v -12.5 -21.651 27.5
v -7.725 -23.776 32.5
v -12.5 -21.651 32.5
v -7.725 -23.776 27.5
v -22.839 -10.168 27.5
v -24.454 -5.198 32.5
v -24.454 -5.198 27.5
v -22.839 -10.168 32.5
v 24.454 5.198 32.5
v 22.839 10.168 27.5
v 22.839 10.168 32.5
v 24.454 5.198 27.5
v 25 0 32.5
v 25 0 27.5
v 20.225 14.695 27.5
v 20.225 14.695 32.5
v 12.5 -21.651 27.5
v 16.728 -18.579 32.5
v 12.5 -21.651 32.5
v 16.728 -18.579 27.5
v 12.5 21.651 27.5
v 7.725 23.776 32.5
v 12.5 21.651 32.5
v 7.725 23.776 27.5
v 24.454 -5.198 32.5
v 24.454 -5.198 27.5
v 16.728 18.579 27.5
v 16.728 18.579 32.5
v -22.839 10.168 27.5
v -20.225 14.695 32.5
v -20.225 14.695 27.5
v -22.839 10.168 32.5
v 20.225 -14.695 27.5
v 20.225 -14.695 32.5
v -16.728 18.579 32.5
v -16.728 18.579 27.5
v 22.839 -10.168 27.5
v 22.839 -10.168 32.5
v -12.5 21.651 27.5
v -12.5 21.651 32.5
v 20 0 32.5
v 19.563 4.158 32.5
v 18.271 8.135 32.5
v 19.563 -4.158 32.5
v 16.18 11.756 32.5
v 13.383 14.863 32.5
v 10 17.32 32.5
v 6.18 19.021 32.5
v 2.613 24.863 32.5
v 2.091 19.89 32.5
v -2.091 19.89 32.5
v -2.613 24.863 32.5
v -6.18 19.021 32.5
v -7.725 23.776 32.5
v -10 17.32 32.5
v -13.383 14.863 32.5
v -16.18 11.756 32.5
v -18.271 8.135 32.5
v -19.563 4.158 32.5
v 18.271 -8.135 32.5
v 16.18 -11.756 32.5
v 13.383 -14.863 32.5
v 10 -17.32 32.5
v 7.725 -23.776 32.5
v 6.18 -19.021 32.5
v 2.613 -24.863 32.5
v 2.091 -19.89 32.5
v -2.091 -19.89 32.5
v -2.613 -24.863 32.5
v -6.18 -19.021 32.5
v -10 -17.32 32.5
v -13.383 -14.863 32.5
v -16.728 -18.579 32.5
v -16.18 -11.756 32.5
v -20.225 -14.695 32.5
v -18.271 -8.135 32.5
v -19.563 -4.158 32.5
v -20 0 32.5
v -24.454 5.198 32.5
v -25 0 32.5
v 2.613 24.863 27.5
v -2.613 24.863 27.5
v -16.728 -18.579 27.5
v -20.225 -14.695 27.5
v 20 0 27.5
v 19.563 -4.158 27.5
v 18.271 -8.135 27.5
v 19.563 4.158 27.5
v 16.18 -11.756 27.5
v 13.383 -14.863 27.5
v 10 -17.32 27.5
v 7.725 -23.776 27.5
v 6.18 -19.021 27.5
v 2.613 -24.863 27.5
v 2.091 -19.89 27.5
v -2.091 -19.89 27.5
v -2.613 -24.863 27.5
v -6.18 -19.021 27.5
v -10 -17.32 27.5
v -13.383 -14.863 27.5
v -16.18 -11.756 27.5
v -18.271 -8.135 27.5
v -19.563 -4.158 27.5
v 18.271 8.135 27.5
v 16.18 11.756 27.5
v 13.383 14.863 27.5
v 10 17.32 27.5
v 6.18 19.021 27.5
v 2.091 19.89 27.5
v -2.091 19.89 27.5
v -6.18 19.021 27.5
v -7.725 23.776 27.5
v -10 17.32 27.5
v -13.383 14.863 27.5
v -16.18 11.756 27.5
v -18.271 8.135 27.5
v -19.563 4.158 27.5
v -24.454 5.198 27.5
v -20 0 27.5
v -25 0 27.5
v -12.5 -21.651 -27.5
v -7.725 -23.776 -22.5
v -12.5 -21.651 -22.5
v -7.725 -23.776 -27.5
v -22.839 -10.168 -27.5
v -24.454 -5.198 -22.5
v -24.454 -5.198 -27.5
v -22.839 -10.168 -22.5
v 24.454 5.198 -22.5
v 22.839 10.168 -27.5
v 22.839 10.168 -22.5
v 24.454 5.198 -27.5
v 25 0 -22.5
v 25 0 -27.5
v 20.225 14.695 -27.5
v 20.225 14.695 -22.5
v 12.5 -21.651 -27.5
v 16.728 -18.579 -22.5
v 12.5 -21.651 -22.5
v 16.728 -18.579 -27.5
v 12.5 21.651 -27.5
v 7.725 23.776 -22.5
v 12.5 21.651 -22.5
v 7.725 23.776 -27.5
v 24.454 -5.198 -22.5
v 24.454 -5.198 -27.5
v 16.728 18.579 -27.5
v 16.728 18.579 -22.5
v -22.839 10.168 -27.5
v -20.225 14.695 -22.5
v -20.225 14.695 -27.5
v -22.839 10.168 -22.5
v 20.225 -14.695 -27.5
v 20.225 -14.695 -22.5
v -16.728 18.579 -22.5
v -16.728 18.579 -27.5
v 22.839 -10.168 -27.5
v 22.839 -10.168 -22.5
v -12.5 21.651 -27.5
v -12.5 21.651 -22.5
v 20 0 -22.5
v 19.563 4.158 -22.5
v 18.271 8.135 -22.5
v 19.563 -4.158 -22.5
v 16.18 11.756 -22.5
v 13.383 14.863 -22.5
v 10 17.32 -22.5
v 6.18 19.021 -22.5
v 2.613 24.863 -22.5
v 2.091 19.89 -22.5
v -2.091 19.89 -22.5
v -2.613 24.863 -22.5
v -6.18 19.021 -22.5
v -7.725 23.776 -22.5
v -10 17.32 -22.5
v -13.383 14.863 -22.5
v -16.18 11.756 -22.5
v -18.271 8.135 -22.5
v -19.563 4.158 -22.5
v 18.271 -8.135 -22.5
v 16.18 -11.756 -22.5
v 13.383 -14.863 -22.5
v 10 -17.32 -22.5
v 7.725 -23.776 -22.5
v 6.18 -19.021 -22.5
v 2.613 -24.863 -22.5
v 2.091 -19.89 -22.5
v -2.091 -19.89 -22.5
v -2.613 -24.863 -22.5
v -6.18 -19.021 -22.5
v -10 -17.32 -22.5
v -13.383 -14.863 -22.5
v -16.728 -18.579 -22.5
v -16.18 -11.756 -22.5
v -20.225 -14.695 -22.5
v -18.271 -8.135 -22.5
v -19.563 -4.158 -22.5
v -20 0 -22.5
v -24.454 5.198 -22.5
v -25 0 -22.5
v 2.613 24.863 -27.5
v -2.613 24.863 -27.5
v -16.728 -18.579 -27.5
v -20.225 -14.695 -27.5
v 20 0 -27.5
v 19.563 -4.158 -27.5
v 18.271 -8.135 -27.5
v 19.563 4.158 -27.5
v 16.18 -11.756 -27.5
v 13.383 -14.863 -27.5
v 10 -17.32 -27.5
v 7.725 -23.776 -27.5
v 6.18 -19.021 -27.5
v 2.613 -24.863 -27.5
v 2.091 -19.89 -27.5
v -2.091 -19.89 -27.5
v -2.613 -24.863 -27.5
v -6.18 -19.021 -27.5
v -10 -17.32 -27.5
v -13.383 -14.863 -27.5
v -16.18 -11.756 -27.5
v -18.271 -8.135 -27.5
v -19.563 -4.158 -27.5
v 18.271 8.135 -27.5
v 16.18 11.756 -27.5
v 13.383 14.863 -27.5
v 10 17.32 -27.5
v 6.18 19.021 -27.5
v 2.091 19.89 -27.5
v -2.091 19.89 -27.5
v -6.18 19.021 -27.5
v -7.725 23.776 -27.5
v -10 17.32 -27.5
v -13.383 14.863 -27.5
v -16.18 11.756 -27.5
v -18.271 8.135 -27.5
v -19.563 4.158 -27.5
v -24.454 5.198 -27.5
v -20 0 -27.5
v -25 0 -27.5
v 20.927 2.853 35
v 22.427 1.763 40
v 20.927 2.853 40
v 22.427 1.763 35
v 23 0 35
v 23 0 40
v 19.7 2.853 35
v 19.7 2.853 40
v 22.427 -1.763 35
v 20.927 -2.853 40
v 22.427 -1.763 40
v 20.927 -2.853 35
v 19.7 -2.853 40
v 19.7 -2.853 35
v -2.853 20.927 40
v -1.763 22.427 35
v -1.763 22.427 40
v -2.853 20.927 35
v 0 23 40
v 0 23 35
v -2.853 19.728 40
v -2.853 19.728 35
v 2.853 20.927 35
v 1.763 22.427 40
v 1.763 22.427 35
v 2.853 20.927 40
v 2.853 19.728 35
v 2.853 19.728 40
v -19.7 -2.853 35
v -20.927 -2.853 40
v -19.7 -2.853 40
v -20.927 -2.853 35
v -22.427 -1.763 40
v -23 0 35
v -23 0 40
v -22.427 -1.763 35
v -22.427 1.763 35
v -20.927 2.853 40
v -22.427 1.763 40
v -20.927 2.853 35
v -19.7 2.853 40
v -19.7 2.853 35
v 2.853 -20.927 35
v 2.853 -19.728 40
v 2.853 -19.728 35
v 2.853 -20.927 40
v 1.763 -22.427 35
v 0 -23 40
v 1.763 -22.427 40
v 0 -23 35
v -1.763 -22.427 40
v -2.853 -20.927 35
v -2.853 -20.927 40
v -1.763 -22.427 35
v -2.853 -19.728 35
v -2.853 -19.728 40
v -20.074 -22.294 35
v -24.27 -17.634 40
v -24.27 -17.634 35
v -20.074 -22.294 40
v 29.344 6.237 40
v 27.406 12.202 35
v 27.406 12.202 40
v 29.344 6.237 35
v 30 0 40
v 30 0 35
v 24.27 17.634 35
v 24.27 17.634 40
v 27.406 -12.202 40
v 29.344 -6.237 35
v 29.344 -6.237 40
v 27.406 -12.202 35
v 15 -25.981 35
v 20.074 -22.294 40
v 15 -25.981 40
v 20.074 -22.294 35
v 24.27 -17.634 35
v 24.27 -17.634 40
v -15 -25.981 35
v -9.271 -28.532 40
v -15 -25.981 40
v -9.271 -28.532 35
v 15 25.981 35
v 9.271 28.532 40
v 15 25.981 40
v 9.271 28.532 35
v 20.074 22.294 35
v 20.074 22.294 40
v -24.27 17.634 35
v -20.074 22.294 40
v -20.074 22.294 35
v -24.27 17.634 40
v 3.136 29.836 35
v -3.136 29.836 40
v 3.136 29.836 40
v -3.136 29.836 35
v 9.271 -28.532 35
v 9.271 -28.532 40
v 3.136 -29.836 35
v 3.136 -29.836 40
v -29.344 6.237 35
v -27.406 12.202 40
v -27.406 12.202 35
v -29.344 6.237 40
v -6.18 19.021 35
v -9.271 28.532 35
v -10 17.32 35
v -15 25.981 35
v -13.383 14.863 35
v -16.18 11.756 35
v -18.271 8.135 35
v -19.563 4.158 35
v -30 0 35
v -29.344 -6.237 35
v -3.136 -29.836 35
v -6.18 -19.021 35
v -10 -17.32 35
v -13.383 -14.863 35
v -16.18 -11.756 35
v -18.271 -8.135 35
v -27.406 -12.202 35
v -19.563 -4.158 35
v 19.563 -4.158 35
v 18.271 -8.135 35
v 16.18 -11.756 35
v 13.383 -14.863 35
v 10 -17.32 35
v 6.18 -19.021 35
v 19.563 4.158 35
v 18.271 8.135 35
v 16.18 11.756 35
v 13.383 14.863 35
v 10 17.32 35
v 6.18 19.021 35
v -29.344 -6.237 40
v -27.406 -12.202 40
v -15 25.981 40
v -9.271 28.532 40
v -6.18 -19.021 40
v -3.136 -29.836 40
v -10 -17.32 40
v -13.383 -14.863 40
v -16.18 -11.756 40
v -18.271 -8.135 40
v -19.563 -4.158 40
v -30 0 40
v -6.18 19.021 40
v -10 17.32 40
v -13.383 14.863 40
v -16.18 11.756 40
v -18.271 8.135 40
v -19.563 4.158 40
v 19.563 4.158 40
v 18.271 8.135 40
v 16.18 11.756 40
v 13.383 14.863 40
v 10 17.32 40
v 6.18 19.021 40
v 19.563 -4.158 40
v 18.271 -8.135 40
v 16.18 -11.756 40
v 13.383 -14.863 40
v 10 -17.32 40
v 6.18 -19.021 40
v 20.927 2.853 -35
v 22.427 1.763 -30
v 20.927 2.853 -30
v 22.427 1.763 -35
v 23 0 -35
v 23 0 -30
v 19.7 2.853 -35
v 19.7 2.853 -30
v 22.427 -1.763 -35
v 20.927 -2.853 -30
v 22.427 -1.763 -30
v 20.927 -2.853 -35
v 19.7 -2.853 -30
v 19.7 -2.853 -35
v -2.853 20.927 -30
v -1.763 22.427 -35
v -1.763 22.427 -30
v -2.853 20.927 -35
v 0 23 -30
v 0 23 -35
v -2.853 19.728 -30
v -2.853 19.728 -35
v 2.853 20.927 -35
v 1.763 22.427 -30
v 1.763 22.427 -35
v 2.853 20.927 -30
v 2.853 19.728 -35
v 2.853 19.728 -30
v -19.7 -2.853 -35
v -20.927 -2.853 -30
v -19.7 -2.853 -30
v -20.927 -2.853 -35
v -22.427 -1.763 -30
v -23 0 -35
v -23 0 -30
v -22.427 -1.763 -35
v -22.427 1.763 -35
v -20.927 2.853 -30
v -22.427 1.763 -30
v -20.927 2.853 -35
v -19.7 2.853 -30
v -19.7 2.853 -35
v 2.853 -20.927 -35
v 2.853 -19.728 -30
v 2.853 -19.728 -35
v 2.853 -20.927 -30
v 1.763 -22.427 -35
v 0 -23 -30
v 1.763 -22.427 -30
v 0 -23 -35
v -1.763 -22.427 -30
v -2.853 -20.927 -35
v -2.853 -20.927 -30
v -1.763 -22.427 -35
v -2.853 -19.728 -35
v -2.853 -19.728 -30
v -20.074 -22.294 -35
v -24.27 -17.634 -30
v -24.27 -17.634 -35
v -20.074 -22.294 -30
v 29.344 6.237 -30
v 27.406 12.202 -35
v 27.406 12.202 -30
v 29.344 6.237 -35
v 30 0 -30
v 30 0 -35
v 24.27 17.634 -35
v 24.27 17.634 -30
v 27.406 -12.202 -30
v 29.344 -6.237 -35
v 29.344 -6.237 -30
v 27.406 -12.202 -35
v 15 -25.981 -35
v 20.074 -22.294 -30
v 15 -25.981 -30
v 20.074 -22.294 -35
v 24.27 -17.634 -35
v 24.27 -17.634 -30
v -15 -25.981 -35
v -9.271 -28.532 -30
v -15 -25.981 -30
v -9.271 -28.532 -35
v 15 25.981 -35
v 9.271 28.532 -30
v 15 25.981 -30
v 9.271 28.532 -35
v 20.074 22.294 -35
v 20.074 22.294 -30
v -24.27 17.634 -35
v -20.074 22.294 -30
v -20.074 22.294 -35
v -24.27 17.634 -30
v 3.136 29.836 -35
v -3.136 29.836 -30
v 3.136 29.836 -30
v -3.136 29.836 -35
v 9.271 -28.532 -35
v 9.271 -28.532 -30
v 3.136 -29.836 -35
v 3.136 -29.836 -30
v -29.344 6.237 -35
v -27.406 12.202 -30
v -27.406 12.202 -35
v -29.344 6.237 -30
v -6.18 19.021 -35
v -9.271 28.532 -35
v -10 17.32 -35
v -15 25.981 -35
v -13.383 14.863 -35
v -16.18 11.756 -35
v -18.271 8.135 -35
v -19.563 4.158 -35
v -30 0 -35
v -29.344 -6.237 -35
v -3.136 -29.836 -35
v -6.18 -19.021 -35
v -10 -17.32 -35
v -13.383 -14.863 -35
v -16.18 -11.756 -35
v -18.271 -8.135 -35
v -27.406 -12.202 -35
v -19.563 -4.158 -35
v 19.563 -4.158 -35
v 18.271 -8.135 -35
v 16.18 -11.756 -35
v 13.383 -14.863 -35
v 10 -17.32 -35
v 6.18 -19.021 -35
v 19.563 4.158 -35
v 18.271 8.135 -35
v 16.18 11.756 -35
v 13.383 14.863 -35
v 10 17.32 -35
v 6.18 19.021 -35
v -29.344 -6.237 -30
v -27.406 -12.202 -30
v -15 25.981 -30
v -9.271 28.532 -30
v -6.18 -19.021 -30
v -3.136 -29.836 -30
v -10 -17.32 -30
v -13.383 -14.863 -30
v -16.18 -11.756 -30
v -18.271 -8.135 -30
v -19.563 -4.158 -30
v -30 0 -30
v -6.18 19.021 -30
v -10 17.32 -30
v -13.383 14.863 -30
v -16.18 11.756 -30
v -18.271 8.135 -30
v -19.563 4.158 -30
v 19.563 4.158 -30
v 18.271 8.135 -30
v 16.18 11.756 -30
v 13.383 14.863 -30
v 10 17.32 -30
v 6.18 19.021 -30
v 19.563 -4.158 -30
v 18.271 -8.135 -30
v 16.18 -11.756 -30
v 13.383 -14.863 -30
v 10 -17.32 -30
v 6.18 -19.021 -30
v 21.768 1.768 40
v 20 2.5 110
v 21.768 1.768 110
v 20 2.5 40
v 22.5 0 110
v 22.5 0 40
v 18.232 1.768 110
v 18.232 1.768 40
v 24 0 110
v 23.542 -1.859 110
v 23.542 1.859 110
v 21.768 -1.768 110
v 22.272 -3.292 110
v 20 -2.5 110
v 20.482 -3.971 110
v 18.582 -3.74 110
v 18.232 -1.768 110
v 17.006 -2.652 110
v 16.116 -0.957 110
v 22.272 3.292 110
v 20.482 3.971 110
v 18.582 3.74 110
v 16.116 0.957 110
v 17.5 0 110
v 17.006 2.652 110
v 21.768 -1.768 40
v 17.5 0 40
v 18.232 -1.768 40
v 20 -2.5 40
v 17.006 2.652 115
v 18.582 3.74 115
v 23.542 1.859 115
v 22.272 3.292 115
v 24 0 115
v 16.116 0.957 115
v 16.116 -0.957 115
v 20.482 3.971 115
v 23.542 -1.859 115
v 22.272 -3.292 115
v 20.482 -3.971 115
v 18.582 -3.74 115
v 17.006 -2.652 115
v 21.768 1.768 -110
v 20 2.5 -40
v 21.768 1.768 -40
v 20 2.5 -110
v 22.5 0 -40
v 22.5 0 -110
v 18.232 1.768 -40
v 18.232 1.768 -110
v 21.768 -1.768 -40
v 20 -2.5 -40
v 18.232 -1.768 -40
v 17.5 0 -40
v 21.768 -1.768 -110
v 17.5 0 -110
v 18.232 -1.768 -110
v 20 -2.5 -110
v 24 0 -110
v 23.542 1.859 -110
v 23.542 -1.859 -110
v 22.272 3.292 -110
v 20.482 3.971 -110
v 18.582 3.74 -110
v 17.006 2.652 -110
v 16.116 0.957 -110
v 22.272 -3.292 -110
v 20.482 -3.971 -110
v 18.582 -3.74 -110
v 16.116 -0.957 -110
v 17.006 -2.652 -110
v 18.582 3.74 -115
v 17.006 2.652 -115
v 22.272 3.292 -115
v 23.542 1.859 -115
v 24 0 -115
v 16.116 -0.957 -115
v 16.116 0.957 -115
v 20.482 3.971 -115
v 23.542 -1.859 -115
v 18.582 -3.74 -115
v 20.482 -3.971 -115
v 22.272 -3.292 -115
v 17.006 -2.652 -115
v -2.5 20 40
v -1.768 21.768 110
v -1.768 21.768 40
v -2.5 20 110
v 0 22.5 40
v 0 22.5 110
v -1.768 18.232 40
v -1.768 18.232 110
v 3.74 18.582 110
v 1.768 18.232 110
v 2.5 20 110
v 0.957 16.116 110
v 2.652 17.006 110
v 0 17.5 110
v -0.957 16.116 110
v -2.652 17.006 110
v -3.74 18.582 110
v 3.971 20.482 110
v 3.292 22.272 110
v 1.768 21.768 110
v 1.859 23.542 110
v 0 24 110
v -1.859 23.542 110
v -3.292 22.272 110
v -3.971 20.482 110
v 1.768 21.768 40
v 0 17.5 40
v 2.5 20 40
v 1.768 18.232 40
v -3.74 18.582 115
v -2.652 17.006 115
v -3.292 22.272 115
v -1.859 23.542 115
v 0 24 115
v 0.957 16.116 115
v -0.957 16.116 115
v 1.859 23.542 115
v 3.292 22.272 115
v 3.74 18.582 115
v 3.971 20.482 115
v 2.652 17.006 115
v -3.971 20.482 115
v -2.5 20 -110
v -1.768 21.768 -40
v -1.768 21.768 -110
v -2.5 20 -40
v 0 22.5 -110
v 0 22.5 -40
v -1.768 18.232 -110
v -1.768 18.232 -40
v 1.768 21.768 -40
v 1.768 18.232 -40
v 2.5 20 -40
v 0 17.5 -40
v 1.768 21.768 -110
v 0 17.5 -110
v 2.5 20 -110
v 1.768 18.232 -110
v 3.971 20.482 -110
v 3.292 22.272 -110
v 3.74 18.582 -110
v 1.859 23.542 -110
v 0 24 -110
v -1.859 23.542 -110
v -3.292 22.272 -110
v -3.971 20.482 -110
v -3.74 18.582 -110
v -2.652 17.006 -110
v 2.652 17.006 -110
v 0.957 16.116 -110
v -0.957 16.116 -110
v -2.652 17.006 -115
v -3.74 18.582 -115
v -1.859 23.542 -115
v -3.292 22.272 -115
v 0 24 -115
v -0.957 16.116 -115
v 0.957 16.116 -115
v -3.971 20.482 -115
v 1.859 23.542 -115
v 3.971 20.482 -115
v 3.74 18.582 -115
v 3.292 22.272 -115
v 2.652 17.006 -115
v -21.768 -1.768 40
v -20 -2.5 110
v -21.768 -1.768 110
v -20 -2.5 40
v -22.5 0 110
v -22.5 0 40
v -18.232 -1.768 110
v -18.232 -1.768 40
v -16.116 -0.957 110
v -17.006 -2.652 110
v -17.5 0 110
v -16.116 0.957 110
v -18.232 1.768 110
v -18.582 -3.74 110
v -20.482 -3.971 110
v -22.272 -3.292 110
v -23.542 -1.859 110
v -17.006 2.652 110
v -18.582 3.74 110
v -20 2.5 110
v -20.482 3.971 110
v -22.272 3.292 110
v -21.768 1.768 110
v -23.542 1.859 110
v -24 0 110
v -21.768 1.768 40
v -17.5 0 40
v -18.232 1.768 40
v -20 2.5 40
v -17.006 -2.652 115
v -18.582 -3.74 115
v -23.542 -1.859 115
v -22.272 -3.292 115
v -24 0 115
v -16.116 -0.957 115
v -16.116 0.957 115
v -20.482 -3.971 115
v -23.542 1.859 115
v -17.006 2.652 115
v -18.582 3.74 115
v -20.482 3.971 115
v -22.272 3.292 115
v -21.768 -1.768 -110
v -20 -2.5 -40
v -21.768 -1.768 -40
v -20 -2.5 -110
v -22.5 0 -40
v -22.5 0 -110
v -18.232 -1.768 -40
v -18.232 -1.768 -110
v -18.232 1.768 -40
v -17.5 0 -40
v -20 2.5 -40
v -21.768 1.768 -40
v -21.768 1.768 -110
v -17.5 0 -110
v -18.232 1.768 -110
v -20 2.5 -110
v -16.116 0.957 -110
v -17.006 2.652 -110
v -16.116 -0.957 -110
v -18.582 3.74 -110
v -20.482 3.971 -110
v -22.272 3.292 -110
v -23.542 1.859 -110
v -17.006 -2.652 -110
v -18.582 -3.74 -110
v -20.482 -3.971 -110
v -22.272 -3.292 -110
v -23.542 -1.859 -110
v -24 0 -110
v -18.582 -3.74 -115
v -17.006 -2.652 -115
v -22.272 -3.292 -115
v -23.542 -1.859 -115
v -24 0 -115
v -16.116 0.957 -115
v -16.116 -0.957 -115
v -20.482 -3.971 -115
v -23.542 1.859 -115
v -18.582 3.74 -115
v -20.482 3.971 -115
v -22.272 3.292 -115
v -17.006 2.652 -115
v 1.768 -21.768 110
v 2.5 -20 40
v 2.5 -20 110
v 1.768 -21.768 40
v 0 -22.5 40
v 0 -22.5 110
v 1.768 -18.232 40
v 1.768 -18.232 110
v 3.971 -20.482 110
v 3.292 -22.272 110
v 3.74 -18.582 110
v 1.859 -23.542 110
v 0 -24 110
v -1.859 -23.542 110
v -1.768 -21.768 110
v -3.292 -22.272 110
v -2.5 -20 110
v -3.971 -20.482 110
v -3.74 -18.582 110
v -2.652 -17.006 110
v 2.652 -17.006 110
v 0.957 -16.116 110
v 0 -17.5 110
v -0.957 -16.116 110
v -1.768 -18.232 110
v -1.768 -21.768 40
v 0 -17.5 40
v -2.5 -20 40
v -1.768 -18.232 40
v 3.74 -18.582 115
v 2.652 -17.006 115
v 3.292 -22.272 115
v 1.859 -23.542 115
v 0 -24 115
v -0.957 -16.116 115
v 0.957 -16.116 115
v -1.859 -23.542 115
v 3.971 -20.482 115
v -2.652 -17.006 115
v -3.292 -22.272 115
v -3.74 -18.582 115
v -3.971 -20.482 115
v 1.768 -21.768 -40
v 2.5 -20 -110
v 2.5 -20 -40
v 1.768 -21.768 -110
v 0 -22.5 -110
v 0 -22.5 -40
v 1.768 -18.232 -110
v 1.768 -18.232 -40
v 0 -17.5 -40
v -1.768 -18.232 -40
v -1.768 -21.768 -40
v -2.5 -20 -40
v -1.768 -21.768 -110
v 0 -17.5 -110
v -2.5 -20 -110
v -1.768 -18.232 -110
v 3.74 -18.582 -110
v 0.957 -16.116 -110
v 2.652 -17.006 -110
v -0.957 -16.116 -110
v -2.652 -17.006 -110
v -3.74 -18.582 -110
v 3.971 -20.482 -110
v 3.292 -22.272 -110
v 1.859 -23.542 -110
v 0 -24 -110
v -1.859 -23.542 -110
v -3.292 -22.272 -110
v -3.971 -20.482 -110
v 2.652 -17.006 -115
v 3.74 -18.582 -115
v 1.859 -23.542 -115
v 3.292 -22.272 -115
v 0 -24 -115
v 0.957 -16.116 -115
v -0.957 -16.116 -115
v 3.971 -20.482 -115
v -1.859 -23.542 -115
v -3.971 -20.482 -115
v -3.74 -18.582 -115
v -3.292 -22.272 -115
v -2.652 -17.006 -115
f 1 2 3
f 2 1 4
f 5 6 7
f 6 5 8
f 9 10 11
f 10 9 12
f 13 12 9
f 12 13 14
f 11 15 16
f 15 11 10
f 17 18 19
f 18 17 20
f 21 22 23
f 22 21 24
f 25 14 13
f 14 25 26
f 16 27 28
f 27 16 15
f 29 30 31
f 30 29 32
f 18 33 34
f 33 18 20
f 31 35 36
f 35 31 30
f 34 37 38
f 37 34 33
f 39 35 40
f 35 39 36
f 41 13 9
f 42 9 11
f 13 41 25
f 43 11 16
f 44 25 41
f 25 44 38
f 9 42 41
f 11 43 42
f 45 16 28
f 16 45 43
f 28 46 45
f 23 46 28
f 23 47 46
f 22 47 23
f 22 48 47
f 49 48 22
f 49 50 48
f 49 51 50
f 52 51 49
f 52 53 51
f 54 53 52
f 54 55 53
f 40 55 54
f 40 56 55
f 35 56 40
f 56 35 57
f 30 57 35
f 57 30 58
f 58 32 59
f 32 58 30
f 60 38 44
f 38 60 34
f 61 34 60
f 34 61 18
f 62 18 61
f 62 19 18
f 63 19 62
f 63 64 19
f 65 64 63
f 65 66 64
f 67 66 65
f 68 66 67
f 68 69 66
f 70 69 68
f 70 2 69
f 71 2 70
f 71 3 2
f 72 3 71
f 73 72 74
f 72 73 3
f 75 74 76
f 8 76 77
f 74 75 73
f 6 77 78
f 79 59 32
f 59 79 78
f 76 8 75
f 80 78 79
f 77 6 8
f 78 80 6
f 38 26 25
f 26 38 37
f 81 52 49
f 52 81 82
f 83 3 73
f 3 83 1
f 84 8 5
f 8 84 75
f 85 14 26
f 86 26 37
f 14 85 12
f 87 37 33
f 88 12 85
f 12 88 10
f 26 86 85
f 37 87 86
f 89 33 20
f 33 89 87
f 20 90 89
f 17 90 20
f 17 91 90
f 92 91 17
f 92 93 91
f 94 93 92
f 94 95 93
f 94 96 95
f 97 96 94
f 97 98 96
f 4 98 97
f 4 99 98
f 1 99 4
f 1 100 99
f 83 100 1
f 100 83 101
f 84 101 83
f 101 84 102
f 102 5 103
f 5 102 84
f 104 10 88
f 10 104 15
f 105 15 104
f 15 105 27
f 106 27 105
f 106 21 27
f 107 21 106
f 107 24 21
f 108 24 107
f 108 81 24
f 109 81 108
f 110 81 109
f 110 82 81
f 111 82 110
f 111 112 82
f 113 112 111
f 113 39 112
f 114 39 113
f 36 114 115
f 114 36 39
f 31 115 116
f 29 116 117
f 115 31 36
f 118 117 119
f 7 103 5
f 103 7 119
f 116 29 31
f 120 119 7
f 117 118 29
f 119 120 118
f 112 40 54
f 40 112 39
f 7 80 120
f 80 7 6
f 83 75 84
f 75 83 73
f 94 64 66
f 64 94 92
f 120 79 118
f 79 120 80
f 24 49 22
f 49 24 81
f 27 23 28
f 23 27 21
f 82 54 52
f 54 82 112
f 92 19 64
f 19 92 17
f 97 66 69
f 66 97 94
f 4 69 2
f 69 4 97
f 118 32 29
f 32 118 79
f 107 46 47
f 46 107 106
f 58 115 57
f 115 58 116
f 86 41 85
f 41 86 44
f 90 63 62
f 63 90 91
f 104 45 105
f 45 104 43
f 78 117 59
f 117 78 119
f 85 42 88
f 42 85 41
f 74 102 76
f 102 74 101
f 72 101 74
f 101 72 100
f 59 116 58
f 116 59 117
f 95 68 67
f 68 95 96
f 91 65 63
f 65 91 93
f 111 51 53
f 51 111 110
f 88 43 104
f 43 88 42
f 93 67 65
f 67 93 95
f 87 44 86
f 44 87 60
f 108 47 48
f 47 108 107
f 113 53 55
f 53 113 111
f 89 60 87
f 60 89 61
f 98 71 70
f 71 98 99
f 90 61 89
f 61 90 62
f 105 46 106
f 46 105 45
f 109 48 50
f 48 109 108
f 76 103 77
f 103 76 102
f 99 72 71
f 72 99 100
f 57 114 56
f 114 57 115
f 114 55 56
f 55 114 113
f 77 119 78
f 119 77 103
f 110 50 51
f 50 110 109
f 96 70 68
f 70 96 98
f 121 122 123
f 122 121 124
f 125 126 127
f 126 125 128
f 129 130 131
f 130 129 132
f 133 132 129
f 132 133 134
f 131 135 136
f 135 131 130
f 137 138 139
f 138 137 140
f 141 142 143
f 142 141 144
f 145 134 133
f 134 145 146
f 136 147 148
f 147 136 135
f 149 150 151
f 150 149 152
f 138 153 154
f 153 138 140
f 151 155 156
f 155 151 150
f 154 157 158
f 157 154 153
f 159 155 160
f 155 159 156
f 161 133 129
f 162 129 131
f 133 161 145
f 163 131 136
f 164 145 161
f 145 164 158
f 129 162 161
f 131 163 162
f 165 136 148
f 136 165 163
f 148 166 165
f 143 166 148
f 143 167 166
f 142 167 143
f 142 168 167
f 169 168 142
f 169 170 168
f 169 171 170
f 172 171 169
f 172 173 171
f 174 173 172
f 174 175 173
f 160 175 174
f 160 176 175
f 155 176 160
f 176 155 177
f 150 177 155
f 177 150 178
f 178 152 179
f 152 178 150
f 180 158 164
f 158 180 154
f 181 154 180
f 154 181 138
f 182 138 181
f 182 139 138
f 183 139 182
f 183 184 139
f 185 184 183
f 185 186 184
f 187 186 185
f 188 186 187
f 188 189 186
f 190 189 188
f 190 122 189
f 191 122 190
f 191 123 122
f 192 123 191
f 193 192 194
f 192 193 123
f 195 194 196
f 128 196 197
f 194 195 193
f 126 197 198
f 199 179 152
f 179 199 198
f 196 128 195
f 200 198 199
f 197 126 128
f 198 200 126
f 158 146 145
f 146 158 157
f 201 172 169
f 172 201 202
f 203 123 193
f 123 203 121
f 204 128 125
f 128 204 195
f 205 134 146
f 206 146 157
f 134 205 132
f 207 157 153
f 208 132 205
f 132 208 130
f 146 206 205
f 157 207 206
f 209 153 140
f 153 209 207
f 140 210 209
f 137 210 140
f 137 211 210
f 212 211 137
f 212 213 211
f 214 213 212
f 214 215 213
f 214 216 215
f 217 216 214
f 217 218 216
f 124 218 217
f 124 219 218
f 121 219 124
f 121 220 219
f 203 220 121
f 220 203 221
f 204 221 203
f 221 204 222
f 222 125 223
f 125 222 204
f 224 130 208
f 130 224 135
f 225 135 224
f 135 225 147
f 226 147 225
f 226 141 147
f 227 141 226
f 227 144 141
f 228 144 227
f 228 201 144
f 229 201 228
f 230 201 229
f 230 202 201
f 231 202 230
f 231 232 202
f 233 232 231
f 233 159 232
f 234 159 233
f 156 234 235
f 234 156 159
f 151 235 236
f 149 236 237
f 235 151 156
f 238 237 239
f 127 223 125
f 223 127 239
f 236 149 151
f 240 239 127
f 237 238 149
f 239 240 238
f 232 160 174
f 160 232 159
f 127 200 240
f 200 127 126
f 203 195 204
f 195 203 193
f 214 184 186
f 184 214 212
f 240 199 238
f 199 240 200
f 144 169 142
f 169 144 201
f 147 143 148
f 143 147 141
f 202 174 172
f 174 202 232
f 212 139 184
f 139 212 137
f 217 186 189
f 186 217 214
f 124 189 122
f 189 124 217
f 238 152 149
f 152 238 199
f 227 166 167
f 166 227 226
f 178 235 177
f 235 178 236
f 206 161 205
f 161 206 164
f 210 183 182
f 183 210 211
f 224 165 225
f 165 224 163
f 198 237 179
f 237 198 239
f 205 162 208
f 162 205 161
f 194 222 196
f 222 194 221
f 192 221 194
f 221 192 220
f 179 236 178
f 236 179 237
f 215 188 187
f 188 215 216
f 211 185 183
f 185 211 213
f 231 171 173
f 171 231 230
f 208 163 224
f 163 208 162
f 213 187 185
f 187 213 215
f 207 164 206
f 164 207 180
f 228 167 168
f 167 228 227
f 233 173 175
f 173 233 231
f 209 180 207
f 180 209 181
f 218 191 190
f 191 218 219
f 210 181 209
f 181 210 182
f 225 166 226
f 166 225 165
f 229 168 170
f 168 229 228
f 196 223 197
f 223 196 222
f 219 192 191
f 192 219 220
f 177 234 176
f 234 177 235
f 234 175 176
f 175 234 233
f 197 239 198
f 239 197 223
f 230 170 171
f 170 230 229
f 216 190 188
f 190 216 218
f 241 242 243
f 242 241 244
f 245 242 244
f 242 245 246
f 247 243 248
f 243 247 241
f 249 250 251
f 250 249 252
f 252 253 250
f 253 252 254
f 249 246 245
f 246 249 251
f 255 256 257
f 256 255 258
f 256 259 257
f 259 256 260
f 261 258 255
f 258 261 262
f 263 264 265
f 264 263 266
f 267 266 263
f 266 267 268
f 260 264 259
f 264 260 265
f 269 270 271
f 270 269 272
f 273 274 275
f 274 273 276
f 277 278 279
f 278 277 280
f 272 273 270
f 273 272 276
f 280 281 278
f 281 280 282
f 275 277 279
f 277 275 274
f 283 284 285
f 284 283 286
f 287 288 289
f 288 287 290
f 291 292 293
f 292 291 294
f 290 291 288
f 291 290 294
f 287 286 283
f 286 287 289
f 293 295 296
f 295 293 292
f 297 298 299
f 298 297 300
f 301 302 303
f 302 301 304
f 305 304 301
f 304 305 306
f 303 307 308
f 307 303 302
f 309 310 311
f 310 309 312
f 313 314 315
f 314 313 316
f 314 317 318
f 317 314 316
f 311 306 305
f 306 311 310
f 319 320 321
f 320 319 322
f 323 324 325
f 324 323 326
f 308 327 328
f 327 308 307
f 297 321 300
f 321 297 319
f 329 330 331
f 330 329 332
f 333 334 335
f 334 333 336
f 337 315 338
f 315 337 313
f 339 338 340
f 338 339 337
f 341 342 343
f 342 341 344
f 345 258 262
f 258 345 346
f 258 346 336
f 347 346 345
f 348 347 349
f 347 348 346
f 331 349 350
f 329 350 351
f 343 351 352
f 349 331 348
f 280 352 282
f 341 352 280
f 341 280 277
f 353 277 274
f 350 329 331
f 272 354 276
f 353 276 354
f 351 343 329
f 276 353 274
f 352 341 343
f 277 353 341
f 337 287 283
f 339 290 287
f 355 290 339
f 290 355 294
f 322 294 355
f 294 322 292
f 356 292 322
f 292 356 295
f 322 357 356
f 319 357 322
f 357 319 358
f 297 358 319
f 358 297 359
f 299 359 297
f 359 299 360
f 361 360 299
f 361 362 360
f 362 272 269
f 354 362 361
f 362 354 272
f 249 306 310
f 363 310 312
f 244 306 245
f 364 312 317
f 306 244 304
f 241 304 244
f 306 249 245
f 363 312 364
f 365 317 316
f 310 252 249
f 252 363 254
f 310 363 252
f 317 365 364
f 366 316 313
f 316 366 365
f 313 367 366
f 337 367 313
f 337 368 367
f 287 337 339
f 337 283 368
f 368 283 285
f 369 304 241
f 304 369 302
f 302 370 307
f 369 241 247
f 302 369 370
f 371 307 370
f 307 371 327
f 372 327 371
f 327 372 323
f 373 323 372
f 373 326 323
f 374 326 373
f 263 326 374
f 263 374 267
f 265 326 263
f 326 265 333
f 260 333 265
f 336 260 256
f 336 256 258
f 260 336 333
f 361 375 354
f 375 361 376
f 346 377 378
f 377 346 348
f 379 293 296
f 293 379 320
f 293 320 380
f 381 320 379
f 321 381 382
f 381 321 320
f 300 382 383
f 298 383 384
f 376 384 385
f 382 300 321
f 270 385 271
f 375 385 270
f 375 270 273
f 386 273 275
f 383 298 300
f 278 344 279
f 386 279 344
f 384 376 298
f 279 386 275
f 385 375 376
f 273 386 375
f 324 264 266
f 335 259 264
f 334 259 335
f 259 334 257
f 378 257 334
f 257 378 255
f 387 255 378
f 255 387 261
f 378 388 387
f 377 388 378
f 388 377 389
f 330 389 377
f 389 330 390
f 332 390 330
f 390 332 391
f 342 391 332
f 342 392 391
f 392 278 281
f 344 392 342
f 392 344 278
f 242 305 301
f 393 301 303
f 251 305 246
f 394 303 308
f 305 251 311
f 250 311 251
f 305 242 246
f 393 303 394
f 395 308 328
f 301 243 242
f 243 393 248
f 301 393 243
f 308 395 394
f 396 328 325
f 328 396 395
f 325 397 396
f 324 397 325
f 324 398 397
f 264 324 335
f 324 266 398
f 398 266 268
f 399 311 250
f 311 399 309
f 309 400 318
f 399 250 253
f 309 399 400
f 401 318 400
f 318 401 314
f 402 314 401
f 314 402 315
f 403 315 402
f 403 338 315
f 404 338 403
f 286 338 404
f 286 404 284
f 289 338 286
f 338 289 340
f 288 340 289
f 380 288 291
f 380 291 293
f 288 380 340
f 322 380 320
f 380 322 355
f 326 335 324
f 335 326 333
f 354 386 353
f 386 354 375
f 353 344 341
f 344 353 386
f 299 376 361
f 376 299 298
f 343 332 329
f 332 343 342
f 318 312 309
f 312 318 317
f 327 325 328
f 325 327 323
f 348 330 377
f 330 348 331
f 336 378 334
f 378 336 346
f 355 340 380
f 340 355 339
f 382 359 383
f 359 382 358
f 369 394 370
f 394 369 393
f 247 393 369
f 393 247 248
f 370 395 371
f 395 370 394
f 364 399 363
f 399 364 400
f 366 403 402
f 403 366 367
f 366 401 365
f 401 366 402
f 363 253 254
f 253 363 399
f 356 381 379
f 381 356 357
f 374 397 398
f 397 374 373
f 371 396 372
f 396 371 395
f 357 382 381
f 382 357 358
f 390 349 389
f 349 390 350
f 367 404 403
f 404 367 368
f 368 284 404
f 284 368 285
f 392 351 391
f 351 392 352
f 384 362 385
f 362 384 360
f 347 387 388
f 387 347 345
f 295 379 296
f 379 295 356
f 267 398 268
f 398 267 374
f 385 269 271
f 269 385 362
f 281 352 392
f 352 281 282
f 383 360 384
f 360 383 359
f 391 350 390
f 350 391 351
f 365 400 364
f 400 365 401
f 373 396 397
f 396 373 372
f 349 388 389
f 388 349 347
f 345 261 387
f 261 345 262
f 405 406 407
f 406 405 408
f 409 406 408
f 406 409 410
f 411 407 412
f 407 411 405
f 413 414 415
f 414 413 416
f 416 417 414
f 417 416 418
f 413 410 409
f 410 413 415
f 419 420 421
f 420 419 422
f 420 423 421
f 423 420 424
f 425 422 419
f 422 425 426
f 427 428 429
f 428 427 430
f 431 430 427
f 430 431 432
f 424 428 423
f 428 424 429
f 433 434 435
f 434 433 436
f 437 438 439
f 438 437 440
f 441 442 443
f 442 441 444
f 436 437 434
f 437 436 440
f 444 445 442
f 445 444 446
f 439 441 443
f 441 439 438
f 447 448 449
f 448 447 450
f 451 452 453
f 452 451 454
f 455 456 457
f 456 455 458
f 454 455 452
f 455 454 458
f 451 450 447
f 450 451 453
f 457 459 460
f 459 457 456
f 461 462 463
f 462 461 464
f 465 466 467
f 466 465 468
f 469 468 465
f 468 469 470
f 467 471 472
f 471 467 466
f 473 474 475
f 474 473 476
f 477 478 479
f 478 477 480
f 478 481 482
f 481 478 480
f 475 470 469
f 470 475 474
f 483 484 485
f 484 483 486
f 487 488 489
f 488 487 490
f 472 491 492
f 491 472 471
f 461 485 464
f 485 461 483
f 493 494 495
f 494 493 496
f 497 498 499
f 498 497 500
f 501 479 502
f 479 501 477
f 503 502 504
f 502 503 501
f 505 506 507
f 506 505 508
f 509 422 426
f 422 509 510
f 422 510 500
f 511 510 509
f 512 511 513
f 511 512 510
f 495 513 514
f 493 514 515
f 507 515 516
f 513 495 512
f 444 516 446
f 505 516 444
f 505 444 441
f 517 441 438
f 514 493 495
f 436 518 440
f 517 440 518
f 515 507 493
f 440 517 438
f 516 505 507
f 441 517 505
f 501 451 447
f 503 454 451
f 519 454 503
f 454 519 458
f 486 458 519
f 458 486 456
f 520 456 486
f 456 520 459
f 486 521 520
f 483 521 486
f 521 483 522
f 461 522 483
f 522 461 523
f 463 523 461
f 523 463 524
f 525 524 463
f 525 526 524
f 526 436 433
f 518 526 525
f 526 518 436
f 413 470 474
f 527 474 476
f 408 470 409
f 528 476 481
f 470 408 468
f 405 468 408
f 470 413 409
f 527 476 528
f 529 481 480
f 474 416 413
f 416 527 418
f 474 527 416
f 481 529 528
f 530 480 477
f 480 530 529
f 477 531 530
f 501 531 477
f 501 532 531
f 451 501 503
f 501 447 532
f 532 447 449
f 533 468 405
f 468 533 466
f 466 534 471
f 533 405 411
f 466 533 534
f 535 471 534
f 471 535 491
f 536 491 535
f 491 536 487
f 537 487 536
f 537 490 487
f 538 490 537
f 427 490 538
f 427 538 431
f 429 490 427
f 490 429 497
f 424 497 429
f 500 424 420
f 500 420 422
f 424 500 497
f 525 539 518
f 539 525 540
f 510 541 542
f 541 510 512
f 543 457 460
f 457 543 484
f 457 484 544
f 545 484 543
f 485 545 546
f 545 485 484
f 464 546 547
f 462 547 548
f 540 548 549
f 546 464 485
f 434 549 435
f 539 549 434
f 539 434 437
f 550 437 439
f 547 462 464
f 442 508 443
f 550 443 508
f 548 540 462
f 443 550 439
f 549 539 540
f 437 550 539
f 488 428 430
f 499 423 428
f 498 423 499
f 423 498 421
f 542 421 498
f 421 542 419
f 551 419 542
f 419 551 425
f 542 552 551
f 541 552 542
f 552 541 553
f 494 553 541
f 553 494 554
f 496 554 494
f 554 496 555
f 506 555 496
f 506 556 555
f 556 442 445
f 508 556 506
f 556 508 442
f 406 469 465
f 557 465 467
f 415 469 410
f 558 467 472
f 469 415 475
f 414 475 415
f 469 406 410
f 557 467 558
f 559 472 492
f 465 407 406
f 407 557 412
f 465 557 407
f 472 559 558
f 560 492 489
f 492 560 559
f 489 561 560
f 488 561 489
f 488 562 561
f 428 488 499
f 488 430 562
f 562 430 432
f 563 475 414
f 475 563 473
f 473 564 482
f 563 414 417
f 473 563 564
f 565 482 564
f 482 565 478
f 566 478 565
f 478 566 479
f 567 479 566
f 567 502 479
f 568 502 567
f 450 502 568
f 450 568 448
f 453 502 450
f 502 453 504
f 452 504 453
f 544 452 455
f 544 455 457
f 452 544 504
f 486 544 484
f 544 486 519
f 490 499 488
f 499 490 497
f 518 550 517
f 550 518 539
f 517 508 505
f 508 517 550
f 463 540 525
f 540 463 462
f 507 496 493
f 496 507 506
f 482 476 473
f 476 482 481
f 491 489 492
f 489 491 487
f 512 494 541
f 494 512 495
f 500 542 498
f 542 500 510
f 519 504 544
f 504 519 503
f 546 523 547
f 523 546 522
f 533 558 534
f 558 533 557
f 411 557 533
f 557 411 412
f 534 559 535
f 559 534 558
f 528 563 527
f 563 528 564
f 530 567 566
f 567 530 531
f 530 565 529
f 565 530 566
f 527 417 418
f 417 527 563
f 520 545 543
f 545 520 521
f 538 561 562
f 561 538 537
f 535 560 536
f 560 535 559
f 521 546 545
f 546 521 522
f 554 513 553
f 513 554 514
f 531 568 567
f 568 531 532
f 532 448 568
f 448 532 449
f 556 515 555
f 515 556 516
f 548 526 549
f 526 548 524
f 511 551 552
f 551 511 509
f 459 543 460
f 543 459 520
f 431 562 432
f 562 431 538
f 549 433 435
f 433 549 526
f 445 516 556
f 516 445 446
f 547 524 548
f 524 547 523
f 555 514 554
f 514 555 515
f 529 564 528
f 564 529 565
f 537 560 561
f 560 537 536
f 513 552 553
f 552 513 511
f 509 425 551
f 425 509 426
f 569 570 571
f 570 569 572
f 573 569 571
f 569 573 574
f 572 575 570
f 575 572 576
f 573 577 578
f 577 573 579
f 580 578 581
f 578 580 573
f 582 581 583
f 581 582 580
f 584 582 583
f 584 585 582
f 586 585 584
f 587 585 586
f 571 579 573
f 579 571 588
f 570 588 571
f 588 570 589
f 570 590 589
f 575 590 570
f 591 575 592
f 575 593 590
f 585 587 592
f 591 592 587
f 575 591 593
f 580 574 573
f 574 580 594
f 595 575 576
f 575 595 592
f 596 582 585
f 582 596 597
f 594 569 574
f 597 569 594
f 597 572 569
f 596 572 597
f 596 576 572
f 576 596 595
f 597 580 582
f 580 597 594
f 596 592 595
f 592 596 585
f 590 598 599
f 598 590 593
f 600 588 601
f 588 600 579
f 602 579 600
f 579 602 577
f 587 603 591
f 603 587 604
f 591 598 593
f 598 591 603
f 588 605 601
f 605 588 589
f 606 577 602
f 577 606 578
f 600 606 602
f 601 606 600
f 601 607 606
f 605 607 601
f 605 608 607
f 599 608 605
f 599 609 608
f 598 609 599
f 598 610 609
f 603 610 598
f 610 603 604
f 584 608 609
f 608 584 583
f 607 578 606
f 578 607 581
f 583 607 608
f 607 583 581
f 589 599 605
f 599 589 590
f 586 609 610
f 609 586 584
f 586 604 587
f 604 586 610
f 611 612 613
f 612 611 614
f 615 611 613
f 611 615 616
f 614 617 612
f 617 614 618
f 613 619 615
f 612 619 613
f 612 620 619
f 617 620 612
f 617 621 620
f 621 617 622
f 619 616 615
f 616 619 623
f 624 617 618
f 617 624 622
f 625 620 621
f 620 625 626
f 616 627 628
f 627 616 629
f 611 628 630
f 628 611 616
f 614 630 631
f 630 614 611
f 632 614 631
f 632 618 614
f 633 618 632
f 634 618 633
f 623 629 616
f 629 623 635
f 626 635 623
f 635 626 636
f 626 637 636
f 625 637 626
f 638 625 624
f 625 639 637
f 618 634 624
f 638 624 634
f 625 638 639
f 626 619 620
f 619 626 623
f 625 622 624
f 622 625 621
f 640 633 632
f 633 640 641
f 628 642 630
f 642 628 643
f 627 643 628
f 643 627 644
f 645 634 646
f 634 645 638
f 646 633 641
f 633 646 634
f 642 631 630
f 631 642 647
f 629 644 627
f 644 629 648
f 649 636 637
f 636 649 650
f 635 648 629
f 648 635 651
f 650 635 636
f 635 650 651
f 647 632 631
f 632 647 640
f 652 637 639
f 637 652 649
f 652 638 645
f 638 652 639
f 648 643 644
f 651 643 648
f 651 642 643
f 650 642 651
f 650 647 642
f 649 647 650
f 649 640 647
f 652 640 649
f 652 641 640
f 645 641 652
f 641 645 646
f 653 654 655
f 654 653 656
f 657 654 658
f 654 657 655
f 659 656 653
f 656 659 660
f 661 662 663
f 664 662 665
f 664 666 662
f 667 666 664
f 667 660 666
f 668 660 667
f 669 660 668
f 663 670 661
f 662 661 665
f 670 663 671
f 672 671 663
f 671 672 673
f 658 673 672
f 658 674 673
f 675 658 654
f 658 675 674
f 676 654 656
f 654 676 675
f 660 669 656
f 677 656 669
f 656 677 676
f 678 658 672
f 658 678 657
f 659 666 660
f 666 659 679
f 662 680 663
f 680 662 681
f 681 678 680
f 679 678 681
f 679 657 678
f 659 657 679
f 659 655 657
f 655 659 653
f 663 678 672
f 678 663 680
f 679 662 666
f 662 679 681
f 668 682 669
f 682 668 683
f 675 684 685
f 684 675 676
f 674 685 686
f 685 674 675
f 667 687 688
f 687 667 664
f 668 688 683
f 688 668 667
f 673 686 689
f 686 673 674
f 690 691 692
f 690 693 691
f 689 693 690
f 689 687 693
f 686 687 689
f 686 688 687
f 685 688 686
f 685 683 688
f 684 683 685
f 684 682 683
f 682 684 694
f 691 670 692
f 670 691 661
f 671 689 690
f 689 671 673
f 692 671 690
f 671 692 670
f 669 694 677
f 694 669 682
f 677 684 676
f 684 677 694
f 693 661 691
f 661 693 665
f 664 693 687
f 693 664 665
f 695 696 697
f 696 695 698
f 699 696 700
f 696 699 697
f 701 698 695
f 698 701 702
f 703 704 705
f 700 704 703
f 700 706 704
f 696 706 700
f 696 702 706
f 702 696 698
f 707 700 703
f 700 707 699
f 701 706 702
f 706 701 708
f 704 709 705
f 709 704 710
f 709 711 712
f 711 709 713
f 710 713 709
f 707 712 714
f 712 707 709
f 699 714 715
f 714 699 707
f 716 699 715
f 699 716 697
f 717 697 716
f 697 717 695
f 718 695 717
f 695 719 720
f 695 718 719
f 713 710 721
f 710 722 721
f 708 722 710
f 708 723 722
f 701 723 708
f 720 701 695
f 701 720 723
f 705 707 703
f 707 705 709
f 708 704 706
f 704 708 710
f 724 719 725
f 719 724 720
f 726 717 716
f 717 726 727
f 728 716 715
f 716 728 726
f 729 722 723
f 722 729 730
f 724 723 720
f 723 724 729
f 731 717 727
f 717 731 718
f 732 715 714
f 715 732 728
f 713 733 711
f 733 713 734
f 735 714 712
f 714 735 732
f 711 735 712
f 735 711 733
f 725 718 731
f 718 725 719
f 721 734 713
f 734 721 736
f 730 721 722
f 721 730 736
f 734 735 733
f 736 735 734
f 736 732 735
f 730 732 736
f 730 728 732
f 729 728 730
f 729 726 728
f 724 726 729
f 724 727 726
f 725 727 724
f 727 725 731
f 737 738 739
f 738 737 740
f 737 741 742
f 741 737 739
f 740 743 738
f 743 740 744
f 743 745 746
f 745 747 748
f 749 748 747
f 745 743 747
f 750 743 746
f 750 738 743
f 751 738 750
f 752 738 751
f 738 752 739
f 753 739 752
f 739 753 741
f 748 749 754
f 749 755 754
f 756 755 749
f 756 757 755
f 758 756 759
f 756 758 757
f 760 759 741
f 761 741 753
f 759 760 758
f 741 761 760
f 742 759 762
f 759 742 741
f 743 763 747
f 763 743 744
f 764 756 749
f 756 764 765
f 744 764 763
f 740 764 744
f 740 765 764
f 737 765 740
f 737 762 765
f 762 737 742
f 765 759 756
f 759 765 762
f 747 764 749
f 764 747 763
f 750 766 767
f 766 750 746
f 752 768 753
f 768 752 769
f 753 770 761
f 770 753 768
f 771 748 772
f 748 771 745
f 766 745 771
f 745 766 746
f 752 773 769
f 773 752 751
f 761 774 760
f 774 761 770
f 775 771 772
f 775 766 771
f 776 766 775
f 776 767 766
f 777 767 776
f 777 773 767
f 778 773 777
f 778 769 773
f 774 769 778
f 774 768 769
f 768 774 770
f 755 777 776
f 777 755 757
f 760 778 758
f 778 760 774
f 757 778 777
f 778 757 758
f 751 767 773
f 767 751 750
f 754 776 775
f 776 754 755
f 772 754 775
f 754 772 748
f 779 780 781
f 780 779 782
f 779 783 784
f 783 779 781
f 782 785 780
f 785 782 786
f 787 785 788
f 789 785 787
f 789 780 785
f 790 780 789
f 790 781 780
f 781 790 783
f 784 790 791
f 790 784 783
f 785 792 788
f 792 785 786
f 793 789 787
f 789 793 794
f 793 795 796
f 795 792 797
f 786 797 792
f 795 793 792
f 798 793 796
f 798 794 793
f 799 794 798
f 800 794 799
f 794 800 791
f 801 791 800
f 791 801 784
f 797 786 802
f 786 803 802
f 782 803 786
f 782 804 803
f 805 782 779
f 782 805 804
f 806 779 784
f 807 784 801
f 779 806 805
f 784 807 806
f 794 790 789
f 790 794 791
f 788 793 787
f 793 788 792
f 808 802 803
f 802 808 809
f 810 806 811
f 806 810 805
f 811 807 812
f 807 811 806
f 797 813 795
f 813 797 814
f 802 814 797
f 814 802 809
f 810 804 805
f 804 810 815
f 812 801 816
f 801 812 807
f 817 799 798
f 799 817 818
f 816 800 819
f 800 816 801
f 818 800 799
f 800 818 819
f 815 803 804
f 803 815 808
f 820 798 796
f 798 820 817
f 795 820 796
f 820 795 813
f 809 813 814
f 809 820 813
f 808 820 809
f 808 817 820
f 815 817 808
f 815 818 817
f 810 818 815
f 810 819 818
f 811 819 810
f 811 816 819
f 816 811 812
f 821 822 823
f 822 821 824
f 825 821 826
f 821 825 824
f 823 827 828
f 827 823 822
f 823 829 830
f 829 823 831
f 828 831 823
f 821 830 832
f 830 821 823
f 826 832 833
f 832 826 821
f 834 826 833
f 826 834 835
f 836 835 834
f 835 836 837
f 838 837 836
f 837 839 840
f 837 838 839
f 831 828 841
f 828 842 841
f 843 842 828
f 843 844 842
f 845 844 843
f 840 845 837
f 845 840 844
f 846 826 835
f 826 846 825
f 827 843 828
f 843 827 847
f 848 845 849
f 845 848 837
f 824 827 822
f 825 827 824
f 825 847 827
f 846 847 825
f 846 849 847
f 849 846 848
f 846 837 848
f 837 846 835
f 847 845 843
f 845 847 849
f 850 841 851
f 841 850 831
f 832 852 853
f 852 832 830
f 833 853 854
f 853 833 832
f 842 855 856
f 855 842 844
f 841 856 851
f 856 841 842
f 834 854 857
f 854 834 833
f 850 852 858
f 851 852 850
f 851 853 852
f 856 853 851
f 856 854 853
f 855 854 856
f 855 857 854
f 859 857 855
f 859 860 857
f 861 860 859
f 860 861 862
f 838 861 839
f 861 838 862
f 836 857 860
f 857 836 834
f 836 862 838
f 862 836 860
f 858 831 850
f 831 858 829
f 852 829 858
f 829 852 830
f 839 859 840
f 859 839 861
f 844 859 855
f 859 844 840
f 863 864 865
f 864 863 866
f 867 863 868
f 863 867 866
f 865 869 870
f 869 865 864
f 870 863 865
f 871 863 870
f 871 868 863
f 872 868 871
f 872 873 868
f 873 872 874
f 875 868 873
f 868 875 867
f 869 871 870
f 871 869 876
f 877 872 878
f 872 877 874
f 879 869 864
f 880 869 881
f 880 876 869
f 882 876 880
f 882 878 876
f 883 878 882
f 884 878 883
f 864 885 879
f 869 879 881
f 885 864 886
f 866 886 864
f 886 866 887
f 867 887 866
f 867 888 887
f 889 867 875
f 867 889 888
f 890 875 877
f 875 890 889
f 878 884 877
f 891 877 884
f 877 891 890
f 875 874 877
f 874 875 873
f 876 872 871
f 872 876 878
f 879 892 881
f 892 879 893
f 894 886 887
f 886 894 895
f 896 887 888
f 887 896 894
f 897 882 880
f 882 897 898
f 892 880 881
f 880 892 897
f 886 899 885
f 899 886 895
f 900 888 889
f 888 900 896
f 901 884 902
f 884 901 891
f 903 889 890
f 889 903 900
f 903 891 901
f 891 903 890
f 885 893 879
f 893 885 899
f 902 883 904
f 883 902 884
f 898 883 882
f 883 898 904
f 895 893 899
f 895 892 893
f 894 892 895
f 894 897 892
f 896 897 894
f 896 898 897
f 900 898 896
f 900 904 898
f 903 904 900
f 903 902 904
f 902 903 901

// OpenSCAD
// Parameters
central_cylinder_diameter = 40; // Diameter of the central cylinder
central_cylinder_length = 60;  // Length of the central cylinder
spacer_ring_outer_diameter = 50; // Outer diameter of the spacer ring
spacer_ring_inner_diameter = 40; // Inner diameter of the spacer ring
spacer_ring_thickness = 5;      // Thickness of the spacer ring
flange_plate_outer_diameter = 60; // Outer diameter of the flange plate
flange_plate_inner_diameter = 40; // Inner diameter of the flange plate
flange_plate_thickness = 5;      // Thickness of the flange plate
bolt_diameter = 5;               // Diameter of the bolt
bolt_length = 70;                // Length of the bolt
nut_diameter = 8;                // Diameter of the nut
nut_thickness = 5;               // Thickness of the nut
bolt_hole_radius = 3;            // Radius of the bolt holes
bolt_hole_spacing = 20;          // Distance from the center to the bolt holes

// Central Cylinder
module central_cylinder() {
    difference() {
        cylinder(h = central_cylinder_length, d = central_cylinder_diameter);
        translate([0, 0, -1])
            cylinder(h = central_cylinder_length + 2, d = spacer_ring_inner_diameter);
    }
}

// Spacer Ring
module spacer_ring() {
    difference() {
        cylinder(h = spacer_ring_thickness, d = spacer_ring_outer_diameter);
        translate([0, 0, -1])
            cylinder(h = spacer_ring_thickness + 2, d = spacer_ring_inner_diameter);
    }
}

// Flange Plate
module flange_plate() {
    difference() {
        cylinder(h = flange_plate_thickness, d = flange_plate_outer_diameter);
        translate([0, 0, -1])
            cylinder(h = flange_plate_thickness + 2, d = flange_plate_inner_diameter);
        for (i = [0:3]) {
            rotate([0, 0, i * 90])
                translate([bolt_hole_spacing, 0, -1])
                    cylinder(h = flange_plate_thickness + 2, r = bolt_hole_radius);
        }
    }
}

// Bolt
module bolt() {
    cylinder(h = bolt_length, d = bolt_diameter);
}

// Nut
module nut() {
    cylinder(h = nut_thickness, d = nut_diameter);
}

// Assembly
module flexible_coupling() {
    // Central Cylinder
    central_cylinder();

    // Spacer Rings
    translate([0, 0, central_cylinder_length / 2 - spacer_ring_thickness / 2])
        spacer_ring();
    translate([0, 0, -central_cylinder_length / 2 + spacer_ring_thickness / 2])
        spacer_ring();

    // Flange Plates
    translate([0, 0, central_cylinder_length / 2 + spacer_ring_thickness])
        flange_plate();
    translate([0, 0, -central_cylinder_length / 2 - spacer_ring_thickness])
        flange_plate();

    // Bolts and Nuts
    for (i = [0:3]) {
        rotate([0, 0, i * 90]) {
            translate([bolt_hole_spacing, 0, central_cylinder_length / 2 + spacer_ring_thickness + flange_plate_thickness])
                bolt();
            translate([bolt_hole_spacing, 0, central_cylinder_length / 2 + spacer_ring_thickness + flange_plate_thickness + bolt_length])
                nut();
            translate([bolt_hole_spacing, 0, -central_cylinder_length / 2 - spacer_ring_thickness - flange_plate_thickness - bolt_length])
                bolt();
            translate([bolt_hole_spacing, 0, -central_cylinder_length / 2 - spacer_ring_thickness - flange_plate_thickness - bolt_length - nut_thickness])
                nut();
        }
    }
}

// Render the flexible coupling
flexible_coupling();
